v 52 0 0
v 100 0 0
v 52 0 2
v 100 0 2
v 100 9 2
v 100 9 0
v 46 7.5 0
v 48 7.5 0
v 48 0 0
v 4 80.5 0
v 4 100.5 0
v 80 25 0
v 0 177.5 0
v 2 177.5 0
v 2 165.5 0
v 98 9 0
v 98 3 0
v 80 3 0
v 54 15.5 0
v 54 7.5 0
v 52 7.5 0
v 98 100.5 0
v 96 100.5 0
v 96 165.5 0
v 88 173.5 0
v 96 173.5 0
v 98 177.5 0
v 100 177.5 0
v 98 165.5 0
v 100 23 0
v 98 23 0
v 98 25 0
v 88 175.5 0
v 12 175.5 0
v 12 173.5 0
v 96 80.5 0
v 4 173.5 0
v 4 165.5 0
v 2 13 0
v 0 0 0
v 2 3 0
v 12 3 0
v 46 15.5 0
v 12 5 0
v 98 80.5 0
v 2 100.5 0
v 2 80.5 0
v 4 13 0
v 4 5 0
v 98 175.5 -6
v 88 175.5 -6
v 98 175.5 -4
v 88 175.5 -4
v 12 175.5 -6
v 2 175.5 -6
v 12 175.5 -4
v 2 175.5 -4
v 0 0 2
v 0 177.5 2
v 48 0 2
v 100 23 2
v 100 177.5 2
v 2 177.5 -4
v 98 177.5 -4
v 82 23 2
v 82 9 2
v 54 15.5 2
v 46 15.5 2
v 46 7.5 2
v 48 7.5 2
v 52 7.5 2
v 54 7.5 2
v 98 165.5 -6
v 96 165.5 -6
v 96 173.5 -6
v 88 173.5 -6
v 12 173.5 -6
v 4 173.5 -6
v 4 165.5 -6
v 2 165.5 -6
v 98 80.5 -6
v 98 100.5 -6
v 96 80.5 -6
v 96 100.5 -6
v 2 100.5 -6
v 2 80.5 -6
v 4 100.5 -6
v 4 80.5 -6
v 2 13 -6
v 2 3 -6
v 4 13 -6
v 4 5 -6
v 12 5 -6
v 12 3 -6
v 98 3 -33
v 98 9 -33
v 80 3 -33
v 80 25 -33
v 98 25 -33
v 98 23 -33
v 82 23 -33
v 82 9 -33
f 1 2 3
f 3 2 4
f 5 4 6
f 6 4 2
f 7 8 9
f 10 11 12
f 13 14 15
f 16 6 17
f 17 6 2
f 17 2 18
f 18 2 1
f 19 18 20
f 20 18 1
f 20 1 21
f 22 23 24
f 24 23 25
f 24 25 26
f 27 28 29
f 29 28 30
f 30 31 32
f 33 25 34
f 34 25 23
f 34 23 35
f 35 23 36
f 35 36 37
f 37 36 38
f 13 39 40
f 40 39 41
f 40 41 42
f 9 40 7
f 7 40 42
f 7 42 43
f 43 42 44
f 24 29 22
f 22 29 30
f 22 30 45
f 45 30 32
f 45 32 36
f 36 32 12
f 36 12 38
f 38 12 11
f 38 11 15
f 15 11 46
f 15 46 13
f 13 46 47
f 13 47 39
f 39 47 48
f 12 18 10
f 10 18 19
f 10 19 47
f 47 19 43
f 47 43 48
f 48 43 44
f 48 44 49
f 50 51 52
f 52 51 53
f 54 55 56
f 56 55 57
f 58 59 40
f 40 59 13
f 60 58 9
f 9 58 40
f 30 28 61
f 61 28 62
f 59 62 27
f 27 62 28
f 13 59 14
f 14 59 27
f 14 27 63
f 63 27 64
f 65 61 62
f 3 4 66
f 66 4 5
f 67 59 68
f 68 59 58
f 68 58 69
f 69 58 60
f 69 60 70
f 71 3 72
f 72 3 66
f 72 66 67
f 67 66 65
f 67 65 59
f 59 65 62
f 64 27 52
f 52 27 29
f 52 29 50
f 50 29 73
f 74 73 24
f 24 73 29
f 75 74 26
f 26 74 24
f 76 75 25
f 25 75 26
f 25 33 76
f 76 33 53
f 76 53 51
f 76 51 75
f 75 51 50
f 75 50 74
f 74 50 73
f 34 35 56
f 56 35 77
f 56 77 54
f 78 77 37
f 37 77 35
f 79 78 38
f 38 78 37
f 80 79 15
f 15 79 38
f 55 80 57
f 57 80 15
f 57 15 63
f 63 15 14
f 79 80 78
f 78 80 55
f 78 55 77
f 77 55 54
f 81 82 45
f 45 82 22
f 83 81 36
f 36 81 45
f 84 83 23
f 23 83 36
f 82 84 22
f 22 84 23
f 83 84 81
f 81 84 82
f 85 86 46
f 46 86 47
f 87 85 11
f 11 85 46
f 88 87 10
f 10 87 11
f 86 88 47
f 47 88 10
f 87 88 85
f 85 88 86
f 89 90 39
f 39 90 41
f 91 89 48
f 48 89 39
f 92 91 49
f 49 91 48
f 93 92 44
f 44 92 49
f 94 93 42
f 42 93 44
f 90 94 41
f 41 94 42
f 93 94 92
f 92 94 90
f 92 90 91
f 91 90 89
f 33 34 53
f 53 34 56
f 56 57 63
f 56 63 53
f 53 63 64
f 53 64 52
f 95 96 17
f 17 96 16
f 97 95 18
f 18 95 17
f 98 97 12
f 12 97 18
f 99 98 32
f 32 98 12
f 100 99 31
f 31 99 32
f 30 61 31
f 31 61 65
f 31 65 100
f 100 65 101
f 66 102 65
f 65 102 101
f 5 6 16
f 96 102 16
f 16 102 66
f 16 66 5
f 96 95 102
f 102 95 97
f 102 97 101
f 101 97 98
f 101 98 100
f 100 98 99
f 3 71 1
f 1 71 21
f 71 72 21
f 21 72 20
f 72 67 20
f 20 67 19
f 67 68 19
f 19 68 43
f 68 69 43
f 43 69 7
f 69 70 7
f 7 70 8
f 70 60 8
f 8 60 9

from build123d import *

# Parameters (mm, degrees)
SKETCH1_W           = 100
SKETCH1_H           = 177.5
BOSS_EXTRUDE1_DEPTH = 2
SKETCH3_W           = 2
SKETCH3_H           = 20
BOSS_EXTRUDE2_DEPTH = 6
SKETCH4_W           = 96
SKETCH4_H           = 2
BOSS_EXTRUDE3_DEPTH = 4
BOSS_EXTRUDE5_DEPTH = 33
SKETCH7_W           = 18
SKETCH7_H           = 14
CUT_EXTRUDE2_DEPTH  = 207.386167172
CUT_EXTRUDE3_DEPTH  = 207.386167172


with BuildPart() as part:
    # Sketch1 → Boss-Extrude1 (new body)
    with BuildSketch(Plane.XY):
        with Locations((50, 88.75)):
            Rectangle(SKETCH1_W, SKETCH1_H)
    extrude(amount=BOSS_EXTRUDE1_DEPTH)

    # Sketch3 → Boss-Extrude2 (add)
    with BuildSketch(Plane(origin=(0, 0, 0), x_dir=(-1, 0, 0), z_dir=(0, 0, -1))):
        Polygon((-98, 175.5), (-88, 175.5), (-88, 173.5), (-96, 173.5), (-96, 165.5), (-98, 165.5), align=None)
        Polygon((-12, 175.5), (-2, 175.5), (-2, 165.5), (-4, 165.5), (-4, 173.5), (-12, 173.5), align=None)
        Polygon((-2, 3), (-12, 3), (-12, 5), (-4, 5), (-4, 13), (-2, 13), align=None)
        with Locations((-97, 90.5)):
            Rectangle(SKETCH3_W, SKETCH3_H)
        with Locations((-3, 90.5)):
            Rectangle(SKETCH3_W, SKETCH3_H)
    extrude(amount=BOSS_EXTRUDE2_DEPTH)

    # Sketch4 → Boss-Extrude3 (add)
    with BuildSketch(Plane(origin=(0, 0, 0), x_dir=(-1, 0, 0), z_dir=(0, 0, -1))):
        with Locations((-50, 176.5)):
            Rectangle(SKETCH4_W, SKETCH4_H)
    extrude(amount=BOSS_EXTRUDE3_DEPTH)

    # Sketch5 → Boss-Extrude5 (add)
    with BuildSketch(Plane(origin=(0, 0, 0), x_dir=(-1, 0, 0), z_dir=(0, 0, -1))):
        Polygon((-98, 3), (-80, 3), (-80, 25), (-98, 25), (-98, 23), (-82, 23), (-82, 9), (-98, 9), align=None)
    extrude(amount=BOSS_EXTRUDE5_DEPTH)

    # Sketch7 → Cut-Extrude2 (cut, through all)
    with BuildSketch(Plane(origin=(0, 0, 0), x_dir=(-1, 0, 0), z_dir=(0, 0, -1))):
        with Locations((-91, 16)):
            Rectangle(SKETCH7_W, SKETCH7_H)
    extrude(amount=-CUT_EXTRUDE2_DEPTH, mode=Mode.SUBTRACT)

    # Sketch8 → Cut-Extrude3 (cut, through all)
    with BuildSketch(Plane(origin=(0, 0, 0), x_dir=(-1, 0, 0), z_dir=(0, 0, -1))):
        Polygon((-48, 0), (-48, 7.5), (-46, 7.5), (-46, 15.5), (-54, 15.5), (-54, 7.5), (-52, 7.5), (-52, 0), align=None)
    extrude(amount=-CUT_EXTRUDE3_DEPTH, mode=Mode.SUBTRACT)


solid = part.part
